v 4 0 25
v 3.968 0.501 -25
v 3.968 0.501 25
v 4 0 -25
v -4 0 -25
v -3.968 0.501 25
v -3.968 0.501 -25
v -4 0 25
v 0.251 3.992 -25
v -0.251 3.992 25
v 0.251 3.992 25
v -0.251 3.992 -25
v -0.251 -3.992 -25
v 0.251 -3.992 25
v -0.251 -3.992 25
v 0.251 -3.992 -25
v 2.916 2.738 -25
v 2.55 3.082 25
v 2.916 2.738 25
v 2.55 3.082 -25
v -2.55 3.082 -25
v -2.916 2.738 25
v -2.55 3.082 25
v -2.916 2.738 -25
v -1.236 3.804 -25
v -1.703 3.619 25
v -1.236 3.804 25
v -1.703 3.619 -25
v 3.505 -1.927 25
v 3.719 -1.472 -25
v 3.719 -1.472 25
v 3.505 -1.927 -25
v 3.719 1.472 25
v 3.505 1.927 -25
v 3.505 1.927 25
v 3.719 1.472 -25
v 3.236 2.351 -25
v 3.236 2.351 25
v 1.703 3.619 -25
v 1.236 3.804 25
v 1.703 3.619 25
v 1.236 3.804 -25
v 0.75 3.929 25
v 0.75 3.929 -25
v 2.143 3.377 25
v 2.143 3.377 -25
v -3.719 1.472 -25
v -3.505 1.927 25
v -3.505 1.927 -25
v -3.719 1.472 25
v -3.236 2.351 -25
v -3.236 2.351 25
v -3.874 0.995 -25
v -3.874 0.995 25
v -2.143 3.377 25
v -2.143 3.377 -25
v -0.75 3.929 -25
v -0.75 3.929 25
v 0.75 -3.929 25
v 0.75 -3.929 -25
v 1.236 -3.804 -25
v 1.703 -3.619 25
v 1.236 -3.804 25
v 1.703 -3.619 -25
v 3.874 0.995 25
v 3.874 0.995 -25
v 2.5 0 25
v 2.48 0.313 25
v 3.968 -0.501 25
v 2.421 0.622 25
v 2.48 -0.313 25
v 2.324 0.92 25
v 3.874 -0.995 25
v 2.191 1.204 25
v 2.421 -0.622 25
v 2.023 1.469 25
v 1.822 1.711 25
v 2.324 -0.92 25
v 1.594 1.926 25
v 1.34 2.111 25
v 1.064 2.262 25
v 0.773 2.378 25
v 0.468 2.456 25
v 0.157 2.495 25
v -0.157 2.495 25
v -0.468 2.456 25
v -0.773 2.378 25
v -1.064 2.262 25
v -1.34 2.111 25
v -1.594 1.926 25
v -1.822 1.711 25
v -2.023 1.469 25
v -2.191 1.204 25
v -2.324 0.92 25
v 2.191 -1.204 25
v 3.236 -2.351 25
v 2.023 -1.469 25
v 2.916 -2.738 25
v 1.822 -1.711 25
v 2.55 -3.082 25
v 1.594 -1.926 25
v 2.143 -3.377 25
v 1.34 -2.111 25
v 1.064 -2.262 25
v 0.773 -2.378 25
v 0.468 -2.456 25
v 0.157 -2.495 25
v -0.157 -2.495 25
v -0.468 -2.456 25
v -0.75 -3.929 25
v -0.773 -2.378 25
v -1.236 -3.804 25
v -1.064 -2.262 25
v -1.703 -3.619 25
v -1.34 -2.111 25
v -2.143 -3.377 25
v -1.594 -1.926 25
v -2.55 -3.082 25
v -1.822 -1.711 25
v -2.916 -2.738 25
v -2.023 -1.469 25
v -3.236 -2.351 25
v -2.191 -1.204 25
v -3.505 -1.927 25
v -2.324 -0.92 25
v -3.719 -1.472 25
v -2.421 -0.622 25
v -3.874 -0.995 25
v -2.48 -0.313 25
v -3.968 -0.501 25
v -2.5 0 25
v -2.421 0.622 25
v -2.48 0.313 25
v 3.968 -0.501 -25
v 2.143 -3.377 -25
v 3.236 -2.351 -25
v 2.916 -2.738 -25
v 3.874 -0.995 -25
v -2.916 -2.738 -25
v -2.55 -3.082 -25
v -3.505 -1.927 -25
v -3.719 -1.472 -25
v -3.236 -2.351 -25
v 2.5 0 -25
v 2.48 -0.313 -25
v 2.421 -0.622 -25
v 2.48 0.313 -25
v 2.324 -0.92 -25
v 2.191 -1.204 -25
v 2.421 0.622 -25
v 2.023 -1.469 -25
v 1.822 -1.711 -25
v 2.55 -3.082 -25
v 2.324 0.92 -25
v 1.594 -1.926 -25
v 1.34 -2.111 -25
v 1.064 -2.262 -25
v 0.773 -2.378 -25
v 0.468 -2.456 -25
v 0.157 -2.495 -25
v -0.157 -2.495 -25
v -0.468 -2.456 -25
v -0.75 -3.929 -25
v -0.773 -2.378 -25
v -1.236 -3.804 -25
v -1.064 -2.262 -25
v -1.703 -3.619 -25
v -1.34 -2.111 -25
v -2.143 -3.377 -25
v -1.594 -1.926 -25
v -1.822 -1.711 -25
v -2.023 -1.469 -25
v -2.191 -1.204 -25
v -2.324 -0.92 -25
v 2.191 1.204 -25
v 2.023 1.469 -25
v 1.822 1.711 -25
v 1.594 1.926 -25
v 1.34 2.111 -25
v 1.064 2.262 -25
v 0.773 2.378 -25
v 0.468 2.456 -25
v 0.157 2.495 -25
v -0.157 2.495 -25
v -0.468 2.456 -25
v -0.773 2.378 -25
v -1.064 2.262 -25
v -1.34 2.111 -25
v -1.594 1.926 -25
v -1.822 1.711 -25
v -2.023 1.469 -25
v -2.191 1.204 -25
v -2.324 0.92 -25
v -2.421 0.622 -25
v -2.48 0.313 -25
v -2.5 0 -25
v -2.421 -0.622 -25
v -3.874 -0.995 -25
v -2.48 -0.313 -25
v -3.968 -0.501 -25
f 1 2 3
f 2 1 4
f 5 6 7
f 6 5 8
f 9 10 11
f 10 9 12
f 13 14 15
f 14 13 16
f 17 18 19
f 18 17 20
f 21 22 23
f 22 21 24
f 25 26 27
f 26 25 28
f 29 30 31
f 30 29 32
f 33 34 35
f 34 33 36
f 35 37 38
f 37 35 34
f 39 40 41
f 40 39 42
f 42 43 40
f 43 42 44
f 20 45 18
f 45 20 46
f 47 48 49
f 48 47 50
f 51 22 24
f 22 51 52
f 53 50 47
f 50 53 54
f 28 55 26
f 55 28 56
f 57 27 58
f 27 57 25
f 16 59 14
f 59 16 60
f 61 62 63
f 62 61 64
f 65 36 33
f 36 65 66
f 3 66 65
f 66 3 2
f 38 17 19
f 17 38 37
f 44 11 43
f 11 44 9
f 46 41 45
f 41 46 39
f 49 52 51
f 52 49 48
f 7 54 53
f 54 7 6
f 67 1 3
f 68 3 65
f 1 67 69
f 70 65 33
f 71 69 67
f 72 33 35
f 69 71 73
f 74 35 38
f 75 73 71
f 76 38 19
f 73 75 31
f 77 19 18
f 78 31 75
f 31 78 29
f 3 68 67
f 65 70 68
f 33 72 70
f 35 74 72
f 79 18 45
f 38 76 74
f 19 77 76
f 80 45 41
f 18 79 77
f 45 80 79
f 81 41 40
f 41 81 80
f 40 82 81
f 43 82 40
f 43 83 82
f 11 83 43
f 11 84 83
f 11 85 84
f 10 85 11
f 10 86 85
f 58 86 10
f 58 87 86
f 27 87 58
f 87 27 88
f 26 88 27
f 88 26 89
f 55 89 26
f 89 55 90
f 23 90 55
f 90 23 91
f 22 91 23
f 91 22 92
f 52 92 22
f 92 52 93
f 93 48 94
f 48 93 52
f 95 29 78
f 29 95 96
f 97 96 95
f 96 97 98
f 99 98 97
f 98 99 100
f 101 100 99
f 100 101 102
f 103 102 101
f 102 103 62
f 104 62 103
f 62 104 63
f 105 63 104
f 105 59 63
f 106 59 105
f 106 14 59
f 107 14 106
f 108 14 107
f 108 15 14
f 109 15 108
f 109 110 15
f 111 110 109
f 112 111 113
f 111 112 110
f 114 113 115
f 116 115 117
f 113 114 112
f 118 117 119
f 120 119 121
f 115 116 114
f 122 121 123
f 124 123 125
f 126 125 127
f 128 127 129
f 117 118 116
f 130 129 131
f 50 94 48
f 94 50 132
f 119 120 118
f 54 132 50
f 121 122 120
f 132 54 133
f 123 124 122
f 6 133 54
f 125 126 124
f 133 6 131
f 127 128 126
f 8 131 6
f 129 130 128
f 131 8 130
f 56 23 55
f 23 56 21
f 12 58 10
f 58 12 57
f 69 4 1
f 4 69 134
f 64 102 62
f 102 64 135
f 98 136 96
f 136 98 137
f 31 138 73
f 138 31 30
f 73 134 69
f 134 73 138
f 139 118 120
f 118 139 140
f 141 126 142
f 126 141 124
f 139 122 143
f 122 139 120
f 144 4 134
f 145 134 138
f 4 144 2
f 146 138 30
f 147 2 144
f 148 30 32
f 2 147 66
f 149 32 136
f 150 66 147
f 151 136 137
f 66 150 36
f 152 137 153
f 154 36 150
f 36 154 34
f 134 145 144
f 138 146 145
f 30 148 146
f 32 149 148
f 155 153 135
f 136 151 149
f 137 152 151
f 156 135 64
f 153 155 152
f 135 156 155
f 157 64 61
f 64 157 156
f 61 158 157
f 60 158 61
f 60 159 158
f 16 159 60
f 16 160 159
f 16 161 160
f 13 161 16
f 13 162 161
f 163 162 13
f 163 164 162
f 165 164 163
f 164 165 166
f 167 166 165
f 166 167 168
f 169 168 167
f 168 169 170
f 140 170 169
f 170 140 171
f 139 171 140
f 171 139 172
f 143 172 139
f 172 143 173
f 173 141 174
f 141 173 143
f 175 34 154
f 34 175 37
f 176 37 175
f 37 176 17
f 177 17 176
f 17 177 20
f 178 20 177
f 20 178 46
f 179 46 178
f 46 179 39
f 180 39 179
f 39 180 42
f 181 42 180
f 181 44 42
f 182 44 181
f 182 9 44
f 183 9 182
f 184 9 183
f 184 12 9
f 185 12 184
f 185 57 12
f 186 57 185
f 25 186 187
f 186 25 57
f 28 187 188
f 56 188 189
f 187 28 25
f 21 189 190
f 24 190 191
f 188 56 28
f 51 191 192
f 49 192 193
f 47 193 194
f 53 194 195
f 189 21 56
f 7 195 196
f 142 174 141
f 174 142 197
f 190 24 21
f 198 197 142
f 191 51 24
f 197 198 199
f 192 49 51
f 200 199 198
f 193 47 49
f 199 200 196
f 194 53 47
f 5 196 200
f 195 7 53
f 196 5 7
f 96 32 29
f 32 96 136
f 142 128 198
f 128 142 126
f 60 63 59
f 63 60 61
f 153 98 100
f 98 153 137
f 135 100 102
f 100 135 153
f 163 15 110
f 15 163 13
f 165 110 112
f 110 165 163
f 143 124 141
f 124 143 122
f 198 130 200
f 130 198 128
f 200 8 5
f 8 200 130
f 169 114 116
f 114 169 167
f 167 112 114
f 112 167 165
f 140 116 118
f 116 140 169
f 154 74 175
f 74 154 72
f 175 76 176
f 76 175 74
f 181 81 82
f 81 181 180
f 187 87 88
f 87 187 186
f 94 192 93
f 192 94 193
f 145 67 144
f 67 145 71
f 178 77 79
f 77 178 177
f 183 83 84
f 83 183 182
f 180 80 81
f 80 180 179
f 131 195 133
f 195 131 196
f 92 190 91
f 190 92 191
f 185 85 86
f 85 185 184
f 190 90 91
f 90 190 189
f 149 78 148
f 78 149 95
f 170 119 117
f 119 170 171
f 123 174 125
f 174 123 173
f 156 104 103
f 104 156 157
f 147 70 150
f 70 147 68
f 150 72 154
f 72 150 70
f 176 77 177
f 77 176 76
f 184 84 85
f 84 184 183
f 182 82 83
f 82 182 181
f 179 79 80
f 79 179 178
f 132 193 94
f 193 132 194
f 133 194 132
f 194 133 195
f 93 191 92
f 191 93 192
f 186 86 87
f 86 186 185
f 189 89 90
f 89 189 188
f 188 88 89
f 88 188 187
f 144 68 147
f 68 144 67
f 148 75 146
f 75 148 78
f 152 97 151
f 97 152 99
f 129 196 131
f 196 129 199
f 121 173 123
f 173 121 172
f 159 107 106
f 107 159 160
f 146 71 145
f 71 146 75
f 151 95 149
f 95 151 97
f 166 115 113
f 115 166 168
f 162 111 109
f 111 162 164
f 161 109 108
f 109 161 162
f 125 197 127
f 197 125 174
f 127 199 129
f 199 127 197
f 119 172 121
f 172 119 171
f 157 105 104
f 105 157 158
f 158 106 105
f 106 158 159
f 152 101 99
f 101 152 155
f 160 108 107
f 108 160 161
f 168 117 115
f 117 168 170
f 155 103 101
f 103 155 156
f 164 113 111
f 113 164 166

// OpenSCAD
$fn = 50;


difference() {
	union() {
		translate(v = [0, 0, -25.0000000000]) {
			cylinder(h = 50, r = 4.0000000000);
		}
	}
	union() {
		translate(v = [0, 0, -100.0000000000]) {
			cylinder(h = 200, r = 2.5000000000);
		}
	}
}
